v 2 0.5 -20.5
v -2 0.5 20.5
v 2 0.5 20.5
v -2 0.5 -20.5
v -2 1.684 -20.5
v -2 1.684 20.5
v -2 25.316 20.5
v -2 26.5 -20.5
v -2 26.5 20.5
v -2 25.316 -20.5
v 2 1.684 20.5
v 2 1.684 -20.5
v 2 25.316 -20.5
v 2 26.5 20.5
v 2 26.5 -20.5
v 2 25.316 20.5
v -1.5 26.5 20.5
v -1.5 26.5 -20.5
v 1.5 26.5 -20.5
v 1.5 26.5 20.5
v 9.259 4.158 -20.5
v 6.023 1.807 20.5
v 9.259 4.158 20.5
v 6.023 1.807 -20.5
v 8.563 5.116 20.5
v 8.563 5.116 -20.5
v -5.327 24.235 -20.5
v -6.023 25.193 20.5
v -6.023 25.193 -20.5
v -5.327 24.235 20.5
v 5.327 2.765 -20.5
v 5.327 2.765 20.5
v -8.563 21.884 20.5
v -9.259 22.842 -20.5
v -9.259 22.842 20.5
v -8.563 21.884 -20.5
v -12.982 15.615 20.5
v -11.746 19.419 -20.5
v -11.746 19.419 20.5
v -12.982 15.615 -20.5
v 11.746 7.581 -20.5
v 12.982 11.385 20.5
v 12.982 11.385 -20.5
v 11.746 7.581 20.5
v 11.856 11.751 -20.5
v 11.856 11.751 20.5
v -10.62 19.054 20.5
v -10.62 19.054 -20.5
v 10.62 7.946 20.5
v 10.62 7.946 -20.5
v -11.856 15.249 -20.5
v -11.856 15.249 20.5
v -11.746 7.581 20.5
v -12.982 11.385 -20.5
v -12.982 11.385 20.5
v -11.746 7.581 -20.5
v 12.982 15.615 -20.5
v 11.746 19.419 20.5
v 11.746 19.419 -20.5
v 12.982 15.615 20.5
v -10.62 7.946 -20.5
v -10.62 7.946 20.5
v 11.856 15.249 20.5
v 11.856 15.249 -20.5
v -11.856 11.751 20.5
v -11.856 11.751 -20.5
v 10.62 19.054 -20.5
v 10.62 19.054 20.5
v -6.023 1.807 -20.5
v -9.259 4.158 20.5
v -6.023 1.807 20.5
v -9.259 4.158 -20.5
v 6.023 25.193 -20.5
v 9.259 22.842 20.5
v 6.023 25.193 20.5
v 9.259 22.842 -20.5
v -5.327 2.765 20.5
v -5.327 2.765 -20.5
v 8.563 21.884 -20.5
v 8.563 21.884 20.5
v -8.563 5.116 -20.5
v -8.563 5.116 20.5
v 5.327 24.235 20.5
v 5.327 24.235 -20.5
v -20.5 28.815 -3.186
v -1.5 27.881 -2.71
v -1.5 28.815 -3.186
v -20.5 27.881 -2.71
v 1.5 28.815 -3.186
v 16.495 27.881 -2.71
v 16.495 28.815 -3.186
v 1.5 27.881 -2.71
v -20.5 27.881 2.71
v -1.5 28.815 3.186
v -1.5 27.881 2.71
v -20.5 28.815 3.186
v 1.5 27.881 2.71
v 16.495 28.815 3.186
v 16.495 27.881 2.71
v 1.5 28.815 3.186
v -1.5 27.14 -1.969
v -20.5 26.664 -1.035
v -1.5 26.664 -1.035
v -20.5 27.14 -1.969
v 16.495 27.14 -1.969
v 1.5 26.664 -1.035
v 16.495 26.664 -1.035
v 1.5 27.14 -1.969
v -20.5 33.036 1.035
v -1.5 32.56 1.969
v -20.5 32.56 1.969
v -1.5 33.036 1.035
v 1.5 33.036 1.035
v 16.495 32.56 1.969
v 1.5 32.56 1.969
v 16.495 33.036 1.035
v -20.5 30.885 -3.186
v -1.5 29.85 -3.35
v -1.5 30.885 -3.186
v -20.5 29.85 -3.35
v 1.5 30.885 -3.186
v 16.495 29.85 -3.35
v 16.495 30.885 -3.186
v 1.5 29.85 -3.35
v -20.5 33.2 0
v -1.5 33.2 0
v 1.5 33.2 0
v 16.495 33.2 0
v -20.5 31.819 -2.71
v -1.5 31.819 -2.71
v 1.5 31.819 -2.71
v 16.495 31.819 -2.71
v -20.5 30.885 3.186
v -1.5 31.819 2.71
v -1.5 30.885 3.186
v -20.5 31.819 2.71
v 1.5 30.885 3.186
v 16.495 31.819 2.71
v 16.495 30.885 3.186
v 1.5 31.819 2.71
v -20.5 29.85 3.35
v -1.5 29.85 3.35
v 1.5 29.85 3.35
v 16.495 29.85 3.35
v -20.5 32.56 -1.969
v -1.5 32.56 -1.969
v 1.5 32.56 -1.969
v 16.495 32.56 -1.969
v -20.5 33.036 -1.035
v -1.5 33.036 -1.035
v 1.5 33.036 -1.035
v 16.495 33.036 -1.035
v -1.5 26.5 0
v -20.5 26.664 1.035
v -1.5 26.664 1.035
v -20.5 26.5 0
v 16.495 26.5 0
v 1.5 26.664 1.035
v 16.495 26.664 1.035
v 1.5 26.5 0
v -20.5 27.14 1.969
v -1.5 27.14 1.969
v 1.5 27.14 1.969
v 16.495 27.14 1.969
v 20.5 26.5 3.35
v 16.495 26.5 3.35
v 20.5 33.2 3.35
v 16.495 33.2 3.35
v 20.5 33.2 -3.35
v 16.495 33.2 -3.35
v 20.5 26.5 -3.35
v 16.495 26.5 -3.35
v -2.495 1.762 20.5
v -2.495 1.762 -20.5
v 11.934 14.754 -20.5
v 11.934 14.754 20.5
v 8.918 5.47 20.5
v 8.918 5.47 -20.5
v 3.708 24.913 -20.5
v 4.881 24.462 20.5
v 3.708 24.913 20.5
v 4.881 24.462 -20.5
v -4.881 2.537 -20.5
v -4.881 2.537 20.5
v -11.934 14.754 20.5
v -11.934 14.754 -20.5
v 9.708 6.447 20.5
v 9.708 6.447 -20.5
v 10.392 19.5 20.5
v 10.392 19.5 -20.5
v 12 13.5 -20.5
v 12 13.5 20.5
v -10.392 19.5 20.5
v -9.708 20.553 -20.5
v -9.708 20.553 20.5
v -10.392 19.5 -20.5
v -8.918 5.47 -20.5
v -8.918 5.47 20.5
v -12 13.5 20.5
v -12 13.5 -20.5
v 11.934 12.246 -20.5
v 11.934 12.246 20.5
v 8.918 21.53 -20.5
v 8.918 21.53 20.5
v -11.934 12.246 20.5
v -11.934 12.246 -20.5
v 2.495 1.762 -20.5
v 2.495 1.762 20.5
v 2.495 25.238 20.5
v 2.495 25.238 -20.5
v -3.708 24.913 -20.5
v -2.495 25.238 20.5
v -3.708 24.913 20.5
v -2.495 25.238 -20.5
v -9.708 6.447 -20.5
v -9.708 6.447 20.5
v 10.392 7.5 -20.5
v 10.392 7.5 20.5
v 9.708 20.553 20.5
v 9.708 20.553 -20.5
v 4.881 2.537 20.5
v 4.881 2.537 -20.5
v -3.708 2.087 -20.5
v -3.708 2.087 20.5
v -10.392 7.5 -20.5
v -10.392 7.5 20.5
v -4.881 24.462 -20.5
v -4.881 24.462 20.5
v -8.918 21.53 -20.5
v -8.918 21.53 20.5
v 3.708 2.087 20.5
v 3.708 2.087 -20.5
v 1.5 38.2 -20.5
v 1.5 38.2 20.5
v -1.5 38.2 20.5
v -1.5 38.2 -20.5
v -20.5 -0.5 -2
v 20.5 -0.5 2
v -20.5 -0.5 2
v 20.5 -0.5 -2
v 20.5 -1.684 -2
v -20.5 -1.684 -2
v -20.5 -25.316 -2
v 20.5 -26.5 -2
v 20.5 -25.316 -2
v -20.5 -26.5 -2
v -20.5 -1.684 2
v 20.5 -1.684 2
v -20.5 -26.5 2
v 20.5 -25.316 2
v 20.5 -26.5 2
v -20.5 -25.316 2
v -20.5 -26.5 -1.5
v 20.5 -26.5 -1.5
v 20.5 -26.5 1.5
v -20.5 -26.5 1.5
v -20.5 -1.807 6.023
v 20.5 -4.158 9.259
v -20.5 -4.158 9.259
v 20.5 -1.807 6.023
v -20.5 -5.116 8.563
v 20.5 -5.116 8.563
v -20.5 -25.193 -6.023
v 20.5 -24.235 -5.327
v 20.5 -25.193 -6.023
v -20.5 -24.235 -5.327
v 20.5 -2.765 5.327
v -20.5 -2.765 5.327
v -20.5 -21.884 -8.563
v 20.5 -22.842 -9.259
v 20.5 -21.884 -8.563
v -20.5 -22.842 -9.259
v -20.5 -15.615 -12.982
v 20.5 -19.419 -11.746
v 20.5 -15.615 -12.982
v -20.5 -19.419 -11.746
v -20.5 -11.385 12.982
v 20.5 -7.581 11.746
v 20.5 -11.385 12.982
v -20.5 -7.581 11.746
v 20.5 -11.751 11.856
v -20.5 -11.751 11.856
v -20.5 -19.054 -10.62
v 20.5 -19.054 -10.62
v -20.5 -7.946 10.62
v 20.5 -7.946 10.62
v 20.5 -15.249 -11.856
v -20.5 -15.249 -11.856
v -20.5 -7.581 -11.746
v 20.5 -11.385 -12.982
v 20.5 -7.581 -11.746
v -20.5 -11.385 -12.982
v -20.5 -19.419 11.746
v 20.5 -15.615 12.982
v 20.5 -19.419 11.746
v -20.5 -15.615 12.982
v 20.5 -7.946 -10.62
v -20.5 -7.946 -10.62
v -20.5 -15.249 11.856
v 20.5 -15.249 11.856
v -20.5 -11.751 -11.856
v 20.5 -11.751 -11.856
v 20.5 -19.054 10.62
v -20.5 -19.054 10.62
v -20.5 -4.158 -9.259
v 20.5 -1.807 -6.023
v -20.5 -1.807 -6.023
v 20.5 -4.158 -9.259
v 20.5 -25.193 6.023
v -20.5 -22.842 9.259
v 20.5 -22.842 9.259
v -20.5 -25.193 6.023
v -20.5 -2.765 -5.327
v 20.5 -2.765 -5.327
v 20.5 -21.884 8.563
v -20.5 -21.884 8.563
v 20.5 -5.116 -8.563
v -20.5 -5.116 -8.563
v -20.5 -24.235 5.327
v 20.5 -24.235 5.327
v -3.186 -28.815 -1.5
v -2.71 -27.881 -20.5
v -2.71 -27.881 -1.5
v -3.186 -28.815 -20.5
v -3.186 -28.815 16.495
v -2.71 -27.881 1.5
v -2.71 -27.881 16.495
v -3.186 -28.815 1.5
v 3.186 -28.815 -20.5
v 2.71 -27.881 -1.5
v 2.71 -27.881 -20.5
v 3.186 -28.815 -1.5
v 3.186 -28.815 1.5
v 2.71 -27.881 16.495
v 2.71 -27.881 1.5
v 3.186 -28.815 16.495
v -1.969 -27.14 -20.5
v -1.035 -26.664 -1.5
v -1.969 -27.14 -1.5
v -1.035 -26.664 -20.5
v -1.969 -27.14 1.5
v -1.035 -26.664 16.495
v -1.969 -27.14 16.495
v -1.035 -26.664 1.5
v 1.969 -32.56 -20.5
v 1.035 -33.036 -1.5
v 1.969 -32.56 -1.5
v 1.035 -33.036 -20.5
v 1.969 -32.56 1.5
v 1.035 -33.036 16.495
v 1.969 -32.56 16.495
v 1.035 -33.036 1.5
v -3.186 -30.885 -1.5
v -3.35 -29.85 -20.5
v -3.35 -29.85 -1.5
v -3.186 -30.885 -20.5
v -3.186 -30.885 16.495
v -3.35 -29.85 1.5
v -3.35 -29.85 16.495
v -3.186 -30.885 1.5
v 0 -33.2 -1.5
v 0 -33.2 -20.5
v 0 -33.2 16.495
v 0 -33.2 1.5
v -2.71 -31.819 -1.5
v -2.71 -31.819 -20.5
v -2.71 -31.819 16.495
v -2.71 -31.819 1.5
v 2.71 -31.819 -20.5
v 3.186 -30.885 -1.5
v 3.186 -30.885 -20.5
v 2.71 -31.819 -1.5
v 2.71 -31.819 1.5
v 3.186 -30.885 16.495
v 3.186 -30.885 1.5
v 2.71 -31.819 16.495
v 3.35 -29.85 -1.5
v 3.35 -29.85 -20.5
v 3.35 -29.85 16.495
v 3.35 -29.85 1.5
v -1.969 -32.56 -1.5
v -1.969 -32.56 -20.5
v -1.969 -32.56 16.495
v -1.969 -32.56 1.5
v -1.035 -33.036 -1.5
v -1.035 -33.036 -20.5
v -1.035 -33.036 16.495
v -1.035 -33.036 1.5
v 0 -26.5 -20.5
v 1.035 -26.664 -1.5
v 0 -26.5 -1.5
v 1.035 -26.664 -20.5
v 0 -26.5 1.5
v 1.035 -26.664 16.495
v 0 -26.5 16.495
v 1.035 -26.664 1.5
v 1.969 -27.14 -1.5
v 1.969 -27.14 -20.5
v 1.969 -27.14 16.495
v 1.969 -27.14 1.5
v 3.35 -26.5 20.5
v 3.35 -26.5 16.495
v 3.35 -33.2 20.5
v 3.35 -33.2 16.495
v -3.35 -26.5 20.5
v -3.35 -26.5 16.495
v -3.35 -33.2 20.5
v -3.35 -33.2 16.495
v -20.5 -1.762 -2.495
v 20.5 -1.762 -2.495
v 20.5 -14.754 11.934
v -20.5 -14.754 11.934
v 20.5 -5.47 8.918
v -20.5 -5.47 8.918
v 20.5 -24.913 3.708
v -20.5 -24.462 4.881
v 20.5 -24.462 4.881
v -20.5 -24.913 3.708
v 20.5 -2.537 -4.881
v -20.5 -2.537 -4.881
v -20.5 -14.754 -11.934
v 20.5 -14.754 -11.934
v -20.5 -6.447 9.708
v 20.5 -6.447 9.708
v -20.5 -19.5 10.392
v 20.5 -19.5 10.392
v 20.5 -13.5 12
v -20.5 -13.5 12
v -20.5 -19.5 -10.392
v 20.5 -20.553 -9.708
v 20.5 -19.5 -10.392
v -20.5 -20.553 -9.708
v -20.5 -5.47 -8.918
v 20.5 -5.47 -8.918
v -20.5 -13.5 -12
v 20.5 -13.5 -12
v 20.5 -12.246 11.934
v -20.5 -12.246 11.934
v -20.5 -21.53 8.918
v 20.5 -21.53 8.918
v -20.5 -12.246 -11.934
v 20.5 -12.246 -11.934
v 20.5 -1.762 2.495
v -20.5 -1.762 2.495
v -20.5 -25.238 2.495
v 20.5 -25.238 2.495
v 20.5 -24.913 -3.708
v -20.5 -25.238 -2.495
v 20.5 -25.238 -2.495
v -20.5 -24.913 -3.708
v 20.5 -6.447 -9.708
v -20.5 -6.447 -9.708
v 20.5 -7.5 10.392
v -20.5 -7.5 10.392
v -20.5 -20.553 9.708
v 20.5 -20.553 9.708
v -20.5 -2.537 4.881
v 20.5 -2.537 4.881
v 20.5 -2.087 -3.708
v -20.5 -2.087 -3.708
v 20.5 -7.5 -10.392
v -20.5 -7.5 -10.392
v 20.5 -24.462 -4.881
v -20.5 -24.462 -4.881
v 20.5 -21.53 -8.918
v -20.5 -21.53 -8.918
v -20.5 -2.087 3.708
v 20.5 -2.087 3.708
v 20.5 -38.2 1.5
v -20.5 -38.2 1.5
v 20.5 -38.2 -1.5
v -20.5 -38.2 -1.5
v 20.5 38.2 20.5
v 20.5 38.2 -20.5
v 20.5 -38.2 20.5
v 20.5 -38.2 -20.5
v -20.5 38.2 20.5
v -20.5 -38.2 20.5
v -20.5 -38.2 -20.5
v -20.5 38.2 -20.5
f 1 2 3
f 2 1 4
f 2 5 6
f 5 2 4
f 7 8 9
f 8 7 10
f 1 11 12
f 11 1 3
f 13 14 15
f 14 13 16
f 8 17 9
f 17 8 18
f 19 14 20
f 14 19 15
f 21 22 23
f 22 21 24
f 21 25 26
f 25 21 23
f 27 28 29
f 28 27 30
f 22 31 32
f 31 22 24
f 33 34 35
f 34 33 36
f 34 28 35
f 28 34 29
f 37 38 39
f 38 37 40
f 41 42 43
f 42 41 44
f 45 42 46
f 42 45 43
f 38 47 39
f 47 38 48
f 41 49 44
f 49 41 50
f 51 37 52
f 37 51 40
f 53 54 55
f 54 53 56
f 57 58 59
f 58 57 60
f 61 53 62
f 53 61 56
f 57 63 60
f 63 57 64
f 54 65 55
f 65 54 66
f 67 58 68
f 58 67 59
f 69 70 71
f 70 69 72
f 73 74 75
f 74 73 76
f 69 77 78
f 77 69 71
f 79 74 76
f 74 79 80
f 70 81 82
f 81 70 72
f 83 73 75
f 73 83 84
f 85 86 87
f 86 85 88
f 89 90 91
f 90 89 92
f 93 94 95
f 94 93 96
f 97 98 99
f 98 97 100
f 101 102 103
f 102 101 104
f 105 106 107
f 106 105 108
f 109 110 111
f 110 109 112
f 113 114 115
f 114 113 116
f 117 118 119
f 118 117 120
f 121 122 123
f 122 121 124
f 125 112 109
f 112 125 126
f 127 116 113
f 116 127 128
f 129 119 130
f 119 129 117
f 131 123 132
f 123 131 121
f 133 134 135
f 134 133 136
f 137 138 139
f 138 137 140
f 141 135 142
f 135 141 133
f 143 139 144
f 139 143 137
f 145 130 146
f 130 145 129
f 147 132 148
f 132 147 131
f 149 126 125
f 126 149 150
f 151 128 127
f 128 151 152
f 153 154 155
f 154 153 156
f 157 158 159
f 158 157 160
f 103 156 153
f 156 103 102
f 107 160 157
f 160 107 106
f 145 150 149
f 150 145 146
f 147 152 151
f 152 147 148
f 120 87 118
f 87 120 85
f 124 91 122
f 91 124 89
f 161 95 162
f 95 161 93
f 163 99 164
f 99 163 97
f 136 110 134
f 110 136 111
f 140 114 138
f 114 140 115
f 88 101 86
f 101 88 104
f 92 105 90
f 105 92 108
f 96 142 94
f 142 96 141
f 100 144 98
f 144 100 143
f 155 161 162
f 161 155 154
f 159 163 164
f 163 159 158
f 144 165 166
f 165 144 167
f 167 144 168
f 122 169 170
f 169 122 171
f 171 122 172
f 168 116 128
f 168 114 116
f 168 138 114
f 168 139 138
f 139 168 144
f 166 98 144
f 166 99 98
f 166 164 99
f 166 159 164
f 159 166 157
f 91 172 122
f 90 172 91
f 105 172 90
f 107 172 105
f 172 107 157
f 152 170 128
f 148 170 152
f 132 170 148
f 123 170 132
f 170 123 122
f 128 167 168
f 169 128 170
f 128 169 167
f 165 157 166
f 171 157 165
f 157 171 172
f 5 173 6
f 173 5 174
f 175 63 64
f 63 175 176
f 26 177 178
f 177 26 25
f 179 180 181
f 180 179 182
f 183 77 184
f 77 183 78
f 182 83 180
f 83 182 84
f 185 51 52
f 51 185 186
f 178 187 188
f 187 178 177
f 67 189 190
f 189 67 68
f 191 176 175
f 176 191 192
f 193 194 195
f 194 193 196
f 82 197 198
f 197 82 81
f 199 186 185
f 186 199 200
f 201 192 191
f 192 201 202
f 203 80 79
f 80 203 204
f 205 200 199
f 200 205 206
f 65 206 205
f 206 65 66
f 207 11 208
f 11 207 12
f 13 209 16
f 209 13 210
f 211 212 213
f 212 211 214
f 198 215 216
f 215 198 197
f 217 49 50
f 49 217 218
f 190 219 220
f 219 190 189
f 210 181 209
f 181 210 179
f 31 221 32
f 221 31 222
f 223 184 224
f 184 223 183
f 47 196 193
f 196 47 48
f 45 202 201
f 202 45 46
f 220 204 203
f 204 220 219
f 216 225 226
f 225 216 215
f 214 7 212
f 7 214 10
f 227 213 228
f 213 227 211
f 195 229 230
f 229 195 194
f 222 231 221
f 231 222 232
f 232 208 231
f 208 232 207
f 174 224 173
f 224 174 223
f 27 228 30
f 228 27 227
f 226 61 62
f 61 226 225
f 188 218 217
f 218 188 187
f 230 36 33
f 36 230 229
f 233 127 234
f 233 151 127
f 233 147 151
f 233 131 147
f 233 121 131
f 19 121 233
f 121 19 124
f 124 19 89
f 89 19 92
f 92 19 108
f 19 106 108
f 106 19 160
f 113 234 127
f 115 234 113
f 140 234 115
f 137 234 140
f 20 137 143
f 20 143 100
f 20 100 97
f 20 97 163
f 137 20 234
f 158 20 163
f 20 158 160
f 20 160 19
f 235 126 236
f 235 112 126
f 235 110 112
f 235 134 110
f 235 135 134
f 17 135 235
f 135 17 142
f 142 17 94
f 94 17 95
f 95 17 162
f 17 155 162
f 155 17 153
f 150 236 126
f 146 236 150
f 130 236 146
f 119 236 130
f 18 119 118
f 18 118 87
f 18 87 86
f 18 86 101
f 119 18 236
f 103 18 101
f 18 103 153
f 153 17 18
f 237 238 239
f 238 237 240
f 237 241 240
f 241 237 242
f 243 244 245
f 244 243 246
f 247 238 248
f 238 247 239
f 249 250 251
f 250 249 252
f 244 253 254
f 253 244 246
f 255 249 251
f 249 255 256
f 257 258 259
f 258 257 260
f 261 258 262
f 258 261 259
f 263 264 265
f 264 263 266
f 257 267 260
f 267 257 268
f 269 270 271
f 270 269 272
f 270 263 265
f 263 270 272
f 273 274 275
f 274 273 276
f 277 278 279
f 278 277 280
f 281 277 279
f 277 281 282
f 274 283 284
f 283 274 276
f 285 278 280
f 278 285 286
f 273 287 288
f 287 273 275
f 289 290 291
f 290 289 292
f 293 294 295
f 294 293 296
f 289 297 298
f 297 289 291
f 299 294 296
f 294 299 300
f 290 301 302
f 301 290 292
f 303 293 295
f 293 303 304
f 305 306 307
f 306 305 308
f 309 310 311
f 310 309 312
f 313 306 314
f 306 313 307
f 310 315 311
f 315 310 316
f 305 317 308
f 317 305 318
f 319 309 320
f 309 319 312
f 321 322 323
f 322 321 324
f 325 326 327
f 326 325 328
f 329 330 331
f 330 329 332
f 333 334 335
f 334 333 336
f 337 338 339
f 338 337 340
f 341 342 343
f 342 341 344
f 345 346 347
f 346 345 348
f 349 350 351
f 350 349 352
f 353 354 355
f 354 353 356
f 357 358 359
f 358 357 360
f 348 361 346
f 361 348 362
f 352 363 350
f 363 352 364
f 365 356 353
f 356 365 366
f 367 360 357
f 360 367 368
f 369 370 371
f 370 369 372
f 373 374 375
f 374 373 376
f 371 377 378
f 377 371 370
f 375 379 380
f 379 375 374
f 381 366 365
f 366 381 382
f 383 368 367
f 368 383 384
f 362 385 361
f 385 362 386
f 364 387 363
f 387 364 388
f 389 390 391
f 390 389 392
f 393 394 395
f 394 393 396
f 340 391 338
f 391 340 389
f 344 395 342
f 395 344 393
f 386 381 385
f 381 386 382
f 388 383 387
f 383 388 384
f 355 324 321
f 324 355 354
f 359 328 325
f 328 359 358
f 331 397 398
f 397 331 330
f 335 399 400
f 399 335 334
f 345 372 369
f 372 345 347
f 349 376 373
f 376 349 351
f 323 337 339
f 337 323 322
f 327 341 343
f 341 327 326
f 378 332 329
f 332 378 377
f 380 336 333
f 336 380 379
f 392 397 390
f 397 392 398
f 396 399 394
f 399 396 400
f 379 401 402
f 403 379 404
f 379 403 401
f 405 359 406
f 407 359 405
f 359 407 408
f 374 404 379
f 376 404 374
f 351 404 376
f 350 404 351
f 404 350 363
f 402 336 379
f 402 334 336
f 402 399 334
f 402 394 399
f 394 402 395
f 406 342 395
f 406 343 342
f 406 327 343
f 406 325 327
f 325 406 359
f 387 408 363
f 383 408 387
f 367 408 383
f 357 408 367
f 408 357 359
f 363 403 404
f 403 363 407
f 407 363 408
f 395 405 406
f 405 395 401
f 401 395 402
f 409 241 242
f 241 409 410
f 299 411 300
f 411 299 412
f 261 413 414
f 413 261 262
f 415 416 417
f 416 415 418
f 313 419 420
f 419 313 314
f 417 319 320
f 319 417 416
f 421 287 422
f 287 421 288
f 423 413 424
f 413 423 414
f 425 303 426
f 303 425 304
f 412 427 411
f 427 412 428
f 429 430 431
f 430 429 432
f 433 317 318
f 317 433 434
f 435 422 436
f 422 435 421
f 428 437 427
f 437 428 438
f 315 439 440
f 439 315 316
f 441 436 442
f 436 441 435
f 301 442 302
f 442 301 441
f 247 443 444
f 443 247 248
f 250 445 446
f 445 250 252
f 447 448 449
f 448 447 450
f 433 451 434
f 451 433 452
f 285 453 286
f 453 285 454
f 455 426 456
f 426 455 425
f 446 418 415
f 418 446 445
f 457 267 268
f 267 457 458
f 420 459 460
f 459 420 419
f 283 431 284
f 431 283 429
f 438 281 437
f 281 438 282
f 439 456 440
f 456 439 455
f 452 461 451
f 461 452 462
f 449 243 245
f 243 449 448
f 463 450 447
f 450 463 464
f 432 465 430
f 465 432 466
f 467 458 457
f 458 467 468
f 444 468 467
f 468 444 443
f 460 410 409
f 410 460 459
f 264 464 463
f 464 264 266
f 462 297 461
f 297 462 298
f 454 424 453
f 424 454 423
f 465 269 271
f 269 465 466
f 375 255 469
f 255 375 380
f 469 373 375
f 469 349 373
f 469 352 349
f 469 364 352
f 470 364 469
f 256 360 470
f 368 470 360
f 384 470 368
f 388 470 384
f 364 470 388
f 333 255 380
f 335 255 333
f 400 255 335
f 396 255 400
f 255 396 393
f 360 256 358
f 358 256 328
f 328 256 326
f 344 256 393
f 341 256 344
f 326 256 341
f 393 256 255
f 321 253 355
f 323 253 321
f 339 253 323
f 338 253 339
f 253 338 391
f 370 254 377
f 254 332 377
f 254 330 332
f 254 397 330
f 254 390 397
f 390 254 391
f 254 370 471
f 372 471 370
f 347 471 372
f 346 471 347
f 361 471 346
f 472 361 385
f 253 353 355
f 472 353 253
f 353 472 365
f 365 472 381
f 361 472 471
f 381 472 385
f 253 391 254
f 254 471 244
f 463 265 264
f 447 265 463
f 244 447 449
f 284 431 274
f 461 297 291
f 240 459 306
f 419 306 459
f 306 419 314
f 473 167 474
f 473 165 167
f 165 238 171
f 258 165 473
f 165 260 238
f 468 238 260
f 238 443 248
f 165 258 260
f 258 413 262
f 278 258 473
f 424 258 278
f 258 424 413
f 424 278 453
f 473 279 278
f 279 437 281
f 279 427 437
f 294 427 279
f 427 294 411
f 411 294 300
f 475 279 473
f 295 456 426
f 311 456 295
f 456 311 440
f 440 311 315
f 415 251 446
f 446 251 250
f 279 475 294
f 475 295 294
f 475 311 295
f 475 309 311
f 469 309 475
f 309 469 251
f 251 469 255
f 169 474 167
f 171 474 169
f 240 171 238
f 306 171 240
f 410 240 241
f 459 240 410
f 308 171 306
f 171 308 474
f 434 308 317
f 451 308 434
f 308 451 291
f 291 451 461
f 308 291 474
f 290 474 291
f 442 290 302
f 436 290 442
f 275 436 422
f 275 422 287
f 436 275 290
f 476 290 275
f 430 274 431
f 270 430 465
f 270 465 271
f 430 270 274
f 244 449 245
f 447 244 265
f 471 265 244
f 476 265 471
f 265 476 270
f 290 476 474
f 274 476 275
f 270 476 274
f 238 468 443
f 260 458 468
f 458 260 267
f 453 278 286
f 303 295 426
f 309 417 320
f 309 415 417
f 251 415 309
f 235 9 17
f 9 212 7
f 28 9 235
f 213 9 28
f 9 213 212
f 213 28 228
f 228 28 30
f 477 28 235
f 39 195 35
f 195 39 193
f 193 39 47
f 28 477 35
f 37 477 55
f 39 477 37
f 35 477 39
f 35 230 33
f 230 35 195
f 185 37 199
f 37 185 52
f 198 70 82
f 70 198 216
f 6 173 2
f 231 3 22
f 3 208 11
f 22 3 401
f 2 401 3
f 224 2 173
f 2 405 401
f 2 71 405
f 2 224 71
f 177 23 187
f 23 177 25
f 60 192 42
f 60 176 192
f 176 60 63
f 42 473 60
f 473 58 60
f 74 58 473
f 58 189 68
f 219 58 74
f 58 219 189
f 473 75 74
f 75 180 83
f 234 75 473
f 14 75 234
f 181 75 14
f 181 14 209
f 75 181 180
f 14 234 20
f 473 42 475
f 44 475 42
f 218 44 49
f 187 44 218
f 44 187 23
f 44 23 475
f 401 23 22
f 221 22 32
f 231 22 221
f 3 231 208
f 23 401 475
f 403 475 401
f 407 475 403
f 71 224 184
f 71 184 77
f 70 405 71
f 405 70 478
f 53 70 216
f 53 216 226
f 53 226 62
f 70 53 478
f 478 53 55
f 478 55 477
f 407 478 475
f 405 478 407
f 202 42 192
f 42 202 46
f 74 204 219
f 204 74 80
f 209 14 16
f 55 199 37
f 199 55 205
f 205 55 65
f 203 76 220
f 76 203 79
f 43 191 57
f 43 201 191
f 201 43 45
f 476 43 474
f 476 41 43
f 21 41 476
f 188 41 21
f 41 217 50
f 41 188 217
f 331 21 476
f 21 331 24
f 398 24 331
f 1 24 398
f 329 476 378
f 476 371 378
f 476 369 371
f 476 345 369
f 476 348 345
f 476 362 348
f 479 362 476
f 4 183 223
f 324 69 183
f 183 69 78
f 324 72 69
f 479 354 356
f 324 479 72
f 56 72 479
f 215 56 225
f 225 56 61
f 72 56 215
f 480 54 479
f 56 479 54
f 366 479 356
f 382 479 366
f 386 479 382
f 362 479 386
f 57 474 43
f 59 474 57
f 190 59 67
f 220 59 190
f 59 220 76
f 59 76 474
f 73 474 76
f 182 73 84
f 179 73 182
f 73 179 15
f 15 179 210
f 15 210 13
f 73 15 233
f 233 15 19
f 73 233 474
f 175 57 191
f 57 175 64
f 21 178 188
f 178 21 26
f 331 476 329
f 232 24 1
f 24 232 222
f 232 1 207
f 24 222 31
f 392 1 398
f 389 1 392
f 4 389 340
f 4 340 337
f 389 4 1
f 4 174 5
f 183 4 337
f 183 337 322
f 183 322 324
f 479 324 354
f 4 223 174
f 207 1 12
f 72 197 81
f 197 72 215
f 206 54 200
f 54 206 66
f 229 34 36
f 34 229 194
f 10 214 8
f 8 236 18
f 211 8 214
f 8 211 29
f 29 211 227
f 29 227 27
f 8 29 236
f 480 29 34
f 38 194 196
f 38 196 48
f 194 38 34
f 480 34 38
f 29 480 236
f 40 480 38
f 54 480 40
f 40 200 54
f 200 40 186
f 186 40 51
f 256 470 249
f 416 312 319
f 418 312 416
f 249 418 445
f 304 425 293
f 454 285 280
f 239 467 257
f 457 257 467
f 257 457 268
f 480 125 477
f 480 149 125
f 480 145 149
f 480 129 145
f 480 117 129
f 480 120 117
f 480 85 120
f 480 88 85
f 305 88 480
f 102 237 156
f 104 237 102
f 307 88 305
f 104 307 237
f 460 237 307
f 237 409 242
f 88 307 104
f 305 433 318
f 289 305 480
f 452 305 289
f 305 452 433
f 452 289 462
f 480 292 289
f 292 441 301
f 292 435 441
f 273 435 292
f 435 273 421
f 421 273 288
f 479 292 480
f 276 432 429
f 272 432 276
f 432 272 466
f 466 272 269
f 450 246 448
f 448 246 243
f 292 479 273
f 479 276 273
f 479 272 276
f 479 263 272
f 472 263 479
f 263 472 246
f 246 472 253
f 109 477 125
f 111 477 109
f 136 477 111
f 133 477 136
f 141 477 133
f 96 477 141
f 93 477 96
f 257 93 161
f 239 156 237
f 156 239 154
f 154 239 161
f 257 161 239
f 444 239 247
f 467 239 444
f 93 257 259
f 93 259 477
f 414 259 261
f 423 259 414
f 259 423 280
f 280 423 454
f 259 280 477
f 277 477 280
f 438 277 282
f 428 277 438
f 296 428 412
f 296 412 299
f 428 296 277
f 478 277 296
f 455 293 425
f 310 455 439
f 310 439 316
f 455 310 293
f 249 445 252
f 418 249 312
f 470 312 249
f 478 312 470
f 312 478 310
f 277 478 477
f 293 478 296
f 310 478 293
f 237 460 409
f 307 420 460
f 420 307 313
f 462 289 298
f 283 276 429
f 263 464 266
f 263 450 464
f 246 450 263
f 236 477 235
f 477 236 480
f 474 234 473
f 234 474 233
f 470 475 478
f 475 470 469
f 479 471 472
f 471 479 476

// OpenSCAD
// file: lib/boltDim.scad
/*
    Mounting Blocks to build a camera boom.

    Copyright (C) 2021 John Winans

    This program is free software: you can redistribute it and/or modify
    it under the terms of the GNU General Public License as published by
    the Free Software Foundation, either version 3 of the License, or
    (at your option) any later version.

    This program is distributed in the hope that it will be useful,
    but WITHOUT ANY WARRANTY; without even the implied warranty of
    MERCHANTABILITY or FITNESS FOR A PARTICULAR PURPOSE.  See the
    GNU General Public License for more details.

    You should have received a copy of the GNU General Public License
    along with this program.  If not, see <https://www.gnu.org/licenses/>.
*/

bolt_dim_M2_dia = 3;		// for M2 bolt loose fit
bolt_dim_M2_tap = 2.4;		// for self-tapping a M2 bolt
bolt_dim_M2_head_dia = 4.6;// diameter for a crown countersink

bolt_dim_M25_dia = 3.5;		// for M2.5 bolt loose fit
bolt_dim_M25_tap = 2.6;		// for self-tapping a M2.5 bolt
bolt_dim_M25_head_dia = 6;	// diameter for a crown countersink

bolt_dim_M3_dia = 3.6;		// M3 bolt loose fit
bolt_dim_M3_tap = 3.1;		// for self-tapping M3 bolt
bolt_dim_M3_head_dia = 6.5;	// diameter for a crown countersink

bolt_dim_M5_dia = 5.4;		// for M5 bolt loose fit
bolt_dim_M5_tap = 5;		// for self-tapping a M5 bolt
bolt_dim_M5_head_dia = 9;	// diameter for a crown countersink

nut_dim_M5_DIN985 = 9.6;	// diameter for a hex hole to retain am M5 myloc


bolt_dim_quarter_dia = 6.7;	// for 1/4" bolt loose fit
bolt_dim_quarter_carriage_neck_depth = 4;	// neck length
// file: lib/clamp.scad
/*
	Mounting Blocks to build a camera boom.

    Copyright (C) 2021 John Winans

    This program is free software: you can redistribute it and/or modify
    it under the terms of the GNU General Public License as published by
    the Free Software Foundation, either version 3 of the License, or
    (at your option) any later version.

    This program is distributed in the hope that it will be useful,
    but WITHOUT ANY WARRANTY; without even the implied warranty of
    MERCHANTABILITY or FITNESS FOR A PARTICULAR PURPOSE.  See the
    GNU General Public License for more details.

    You should have received a copy of the GNU General Public License
    along with this program.  If not, see <https://www.gnu.org/licenses/>.
*/

include <boltDim.scad>


//********************************************************
// A pipe & bolt holes for a pipe clamp.
//********************************************************
module clamp_neg(
    relief_slot,        // how far from the edge of the pipe should the relief slot go?
    pipe_length, 
    pipe_diameter,
    clamp_bolt_length,    // used to determine the length of the clamp bolt
    clamp_bolt_dia,
    clamp_bolt_neck_depth,
    clamp_bolt_clearance,
    rib=false, 
    stripe=true
    )
{
    clamp_bolt_offset = pipe_diameter/2+clamp_bolt_dia/2+clamp_bolt_clearance;

    cz = pipe_length+.01;
    
    // the pipe hole
    cylinder(d=pipe_diameter, h=cz+.01, center=true, $fn=60);
    
    if (rib)
    {
        // rib it
        rh=2;
        rs=4;
        for (z=[-cz/2+rh*.5+1 : rs : cz/2]) // XXX fudge start to center it
            translate([0,0,z])
                cylinder(d=pipe_diameter+1, h=rh, center=true, $fn=60);
    }
    
    if (stripe)
    {
        // stripe it
        //rh=1.5;
        rh=4;
        rt=360/10;
        for (theta=[90:rt:2690])
            rotate([0,0,theta]) cube([pipe_diameter+2, rh, cz+.01], center=true);
    }
    
    // releif notch
    translate([0,pipe_diameter/2+relief_slot/2,0]) cube([3, relief_slot+.01, cz+.01], center=true);
    
    // clamp bolt
    translate([0,clamp_bolt_offset,0])
    {
        rotate([0,90,0]) 
        cylinder(d=clamp_bolt_dia, h=clamp_bolt_length+.01, $fn=20, center=true);
    
        // square for carriage bolt head
        translate([clamp_bolt_length/2-clamp_bolt_neck_depth/2,0,0])
            cube([clamp_bolt_neck_depth+.01, clamp_bolt_dia,clamp_bolt_dia], center=true);
    }
}
// main file
/*
    Mounting Blocks to build a camera boom.

    Copyright (C) 2021 John Winans

    This program is free software: you can redistribute it and/or modify
    it under the terms of the GNU General Public License as published by
    the Free Software Foundation, either version 3 of the License, or
    (at your option) any later version.

    This program is distributed in the hope that it will be useful,
    but WITHOUT ANY WARRANTY; without even the implied warranty of
    MERCHANTABILITY or FITNESS FOR A PARTICULAR PURPOSE.  See the
    GNU General Public License for more details.

    You should have received a copy of the GNU General Public License
    along with this program.  If not, see <https://www.gnu.org/licenses/>.
*/

include <lib/clamp.scad>


//********************************************************
// The size of the hole for the pipe(s)
pipe_diameter=24;       // 3/4" conduit

block_c_bolt_pipe_clearance=1;
block_c_bolt_inset=5;	// from clamp-bolt to the end of the block

block_inset=17;			// space from pipe-edge to the block-edge 

pipe_gap=3;				// distance between pipes




// calculate the dimensions of the block using the above config variables

cx = pipe_diameter+block_inset;   

cbd=bolt_dim_quarter_dia;       // clamp bolt diameter
//cz=cbd+block_c_bolt_inset*2;    // this is as thin as I'd want to go
cz=cx;

cbl=cx;                         // length of the clamp bolt bore
cbnd=bolt_dim_quarter_carriage_neck_depth;

cbc=1;
rs=cbd+block_c_bolt_inset+cbc;       // relief slot width

cy = pipe_diameter*2+pipe_gap+rs*2;



crossblock();


/**
* A helper for creating the negative space for the pipe clamp.
**********************************************************************************/
module cn()
{
    clamp_neg(
        clamp_bolt_length=cbl,
        clamp_bolt_dia=cbd,
        clamp_bolt_neck_depth=cbnd,
        relief_slot=rs,
        pipe_length=cz,
        pipe_diameter=pipe_diameter,
        clamp_bolt_clearance=cbc);
}


/**
* A crossblock.
**********************************************************************************/
module crossblock()
{
	pipe_offset=pipe_diameter/2+pipe_gap/2;

    difference()
    {
		cube([cx,cy,cz], center=true);
        translate([0,pipe_offset,0]) cn();
		translate([0,-pipe_offset,0]) rotate([0,90,0]) rotate([0,0,180]) cn();
    }
}
